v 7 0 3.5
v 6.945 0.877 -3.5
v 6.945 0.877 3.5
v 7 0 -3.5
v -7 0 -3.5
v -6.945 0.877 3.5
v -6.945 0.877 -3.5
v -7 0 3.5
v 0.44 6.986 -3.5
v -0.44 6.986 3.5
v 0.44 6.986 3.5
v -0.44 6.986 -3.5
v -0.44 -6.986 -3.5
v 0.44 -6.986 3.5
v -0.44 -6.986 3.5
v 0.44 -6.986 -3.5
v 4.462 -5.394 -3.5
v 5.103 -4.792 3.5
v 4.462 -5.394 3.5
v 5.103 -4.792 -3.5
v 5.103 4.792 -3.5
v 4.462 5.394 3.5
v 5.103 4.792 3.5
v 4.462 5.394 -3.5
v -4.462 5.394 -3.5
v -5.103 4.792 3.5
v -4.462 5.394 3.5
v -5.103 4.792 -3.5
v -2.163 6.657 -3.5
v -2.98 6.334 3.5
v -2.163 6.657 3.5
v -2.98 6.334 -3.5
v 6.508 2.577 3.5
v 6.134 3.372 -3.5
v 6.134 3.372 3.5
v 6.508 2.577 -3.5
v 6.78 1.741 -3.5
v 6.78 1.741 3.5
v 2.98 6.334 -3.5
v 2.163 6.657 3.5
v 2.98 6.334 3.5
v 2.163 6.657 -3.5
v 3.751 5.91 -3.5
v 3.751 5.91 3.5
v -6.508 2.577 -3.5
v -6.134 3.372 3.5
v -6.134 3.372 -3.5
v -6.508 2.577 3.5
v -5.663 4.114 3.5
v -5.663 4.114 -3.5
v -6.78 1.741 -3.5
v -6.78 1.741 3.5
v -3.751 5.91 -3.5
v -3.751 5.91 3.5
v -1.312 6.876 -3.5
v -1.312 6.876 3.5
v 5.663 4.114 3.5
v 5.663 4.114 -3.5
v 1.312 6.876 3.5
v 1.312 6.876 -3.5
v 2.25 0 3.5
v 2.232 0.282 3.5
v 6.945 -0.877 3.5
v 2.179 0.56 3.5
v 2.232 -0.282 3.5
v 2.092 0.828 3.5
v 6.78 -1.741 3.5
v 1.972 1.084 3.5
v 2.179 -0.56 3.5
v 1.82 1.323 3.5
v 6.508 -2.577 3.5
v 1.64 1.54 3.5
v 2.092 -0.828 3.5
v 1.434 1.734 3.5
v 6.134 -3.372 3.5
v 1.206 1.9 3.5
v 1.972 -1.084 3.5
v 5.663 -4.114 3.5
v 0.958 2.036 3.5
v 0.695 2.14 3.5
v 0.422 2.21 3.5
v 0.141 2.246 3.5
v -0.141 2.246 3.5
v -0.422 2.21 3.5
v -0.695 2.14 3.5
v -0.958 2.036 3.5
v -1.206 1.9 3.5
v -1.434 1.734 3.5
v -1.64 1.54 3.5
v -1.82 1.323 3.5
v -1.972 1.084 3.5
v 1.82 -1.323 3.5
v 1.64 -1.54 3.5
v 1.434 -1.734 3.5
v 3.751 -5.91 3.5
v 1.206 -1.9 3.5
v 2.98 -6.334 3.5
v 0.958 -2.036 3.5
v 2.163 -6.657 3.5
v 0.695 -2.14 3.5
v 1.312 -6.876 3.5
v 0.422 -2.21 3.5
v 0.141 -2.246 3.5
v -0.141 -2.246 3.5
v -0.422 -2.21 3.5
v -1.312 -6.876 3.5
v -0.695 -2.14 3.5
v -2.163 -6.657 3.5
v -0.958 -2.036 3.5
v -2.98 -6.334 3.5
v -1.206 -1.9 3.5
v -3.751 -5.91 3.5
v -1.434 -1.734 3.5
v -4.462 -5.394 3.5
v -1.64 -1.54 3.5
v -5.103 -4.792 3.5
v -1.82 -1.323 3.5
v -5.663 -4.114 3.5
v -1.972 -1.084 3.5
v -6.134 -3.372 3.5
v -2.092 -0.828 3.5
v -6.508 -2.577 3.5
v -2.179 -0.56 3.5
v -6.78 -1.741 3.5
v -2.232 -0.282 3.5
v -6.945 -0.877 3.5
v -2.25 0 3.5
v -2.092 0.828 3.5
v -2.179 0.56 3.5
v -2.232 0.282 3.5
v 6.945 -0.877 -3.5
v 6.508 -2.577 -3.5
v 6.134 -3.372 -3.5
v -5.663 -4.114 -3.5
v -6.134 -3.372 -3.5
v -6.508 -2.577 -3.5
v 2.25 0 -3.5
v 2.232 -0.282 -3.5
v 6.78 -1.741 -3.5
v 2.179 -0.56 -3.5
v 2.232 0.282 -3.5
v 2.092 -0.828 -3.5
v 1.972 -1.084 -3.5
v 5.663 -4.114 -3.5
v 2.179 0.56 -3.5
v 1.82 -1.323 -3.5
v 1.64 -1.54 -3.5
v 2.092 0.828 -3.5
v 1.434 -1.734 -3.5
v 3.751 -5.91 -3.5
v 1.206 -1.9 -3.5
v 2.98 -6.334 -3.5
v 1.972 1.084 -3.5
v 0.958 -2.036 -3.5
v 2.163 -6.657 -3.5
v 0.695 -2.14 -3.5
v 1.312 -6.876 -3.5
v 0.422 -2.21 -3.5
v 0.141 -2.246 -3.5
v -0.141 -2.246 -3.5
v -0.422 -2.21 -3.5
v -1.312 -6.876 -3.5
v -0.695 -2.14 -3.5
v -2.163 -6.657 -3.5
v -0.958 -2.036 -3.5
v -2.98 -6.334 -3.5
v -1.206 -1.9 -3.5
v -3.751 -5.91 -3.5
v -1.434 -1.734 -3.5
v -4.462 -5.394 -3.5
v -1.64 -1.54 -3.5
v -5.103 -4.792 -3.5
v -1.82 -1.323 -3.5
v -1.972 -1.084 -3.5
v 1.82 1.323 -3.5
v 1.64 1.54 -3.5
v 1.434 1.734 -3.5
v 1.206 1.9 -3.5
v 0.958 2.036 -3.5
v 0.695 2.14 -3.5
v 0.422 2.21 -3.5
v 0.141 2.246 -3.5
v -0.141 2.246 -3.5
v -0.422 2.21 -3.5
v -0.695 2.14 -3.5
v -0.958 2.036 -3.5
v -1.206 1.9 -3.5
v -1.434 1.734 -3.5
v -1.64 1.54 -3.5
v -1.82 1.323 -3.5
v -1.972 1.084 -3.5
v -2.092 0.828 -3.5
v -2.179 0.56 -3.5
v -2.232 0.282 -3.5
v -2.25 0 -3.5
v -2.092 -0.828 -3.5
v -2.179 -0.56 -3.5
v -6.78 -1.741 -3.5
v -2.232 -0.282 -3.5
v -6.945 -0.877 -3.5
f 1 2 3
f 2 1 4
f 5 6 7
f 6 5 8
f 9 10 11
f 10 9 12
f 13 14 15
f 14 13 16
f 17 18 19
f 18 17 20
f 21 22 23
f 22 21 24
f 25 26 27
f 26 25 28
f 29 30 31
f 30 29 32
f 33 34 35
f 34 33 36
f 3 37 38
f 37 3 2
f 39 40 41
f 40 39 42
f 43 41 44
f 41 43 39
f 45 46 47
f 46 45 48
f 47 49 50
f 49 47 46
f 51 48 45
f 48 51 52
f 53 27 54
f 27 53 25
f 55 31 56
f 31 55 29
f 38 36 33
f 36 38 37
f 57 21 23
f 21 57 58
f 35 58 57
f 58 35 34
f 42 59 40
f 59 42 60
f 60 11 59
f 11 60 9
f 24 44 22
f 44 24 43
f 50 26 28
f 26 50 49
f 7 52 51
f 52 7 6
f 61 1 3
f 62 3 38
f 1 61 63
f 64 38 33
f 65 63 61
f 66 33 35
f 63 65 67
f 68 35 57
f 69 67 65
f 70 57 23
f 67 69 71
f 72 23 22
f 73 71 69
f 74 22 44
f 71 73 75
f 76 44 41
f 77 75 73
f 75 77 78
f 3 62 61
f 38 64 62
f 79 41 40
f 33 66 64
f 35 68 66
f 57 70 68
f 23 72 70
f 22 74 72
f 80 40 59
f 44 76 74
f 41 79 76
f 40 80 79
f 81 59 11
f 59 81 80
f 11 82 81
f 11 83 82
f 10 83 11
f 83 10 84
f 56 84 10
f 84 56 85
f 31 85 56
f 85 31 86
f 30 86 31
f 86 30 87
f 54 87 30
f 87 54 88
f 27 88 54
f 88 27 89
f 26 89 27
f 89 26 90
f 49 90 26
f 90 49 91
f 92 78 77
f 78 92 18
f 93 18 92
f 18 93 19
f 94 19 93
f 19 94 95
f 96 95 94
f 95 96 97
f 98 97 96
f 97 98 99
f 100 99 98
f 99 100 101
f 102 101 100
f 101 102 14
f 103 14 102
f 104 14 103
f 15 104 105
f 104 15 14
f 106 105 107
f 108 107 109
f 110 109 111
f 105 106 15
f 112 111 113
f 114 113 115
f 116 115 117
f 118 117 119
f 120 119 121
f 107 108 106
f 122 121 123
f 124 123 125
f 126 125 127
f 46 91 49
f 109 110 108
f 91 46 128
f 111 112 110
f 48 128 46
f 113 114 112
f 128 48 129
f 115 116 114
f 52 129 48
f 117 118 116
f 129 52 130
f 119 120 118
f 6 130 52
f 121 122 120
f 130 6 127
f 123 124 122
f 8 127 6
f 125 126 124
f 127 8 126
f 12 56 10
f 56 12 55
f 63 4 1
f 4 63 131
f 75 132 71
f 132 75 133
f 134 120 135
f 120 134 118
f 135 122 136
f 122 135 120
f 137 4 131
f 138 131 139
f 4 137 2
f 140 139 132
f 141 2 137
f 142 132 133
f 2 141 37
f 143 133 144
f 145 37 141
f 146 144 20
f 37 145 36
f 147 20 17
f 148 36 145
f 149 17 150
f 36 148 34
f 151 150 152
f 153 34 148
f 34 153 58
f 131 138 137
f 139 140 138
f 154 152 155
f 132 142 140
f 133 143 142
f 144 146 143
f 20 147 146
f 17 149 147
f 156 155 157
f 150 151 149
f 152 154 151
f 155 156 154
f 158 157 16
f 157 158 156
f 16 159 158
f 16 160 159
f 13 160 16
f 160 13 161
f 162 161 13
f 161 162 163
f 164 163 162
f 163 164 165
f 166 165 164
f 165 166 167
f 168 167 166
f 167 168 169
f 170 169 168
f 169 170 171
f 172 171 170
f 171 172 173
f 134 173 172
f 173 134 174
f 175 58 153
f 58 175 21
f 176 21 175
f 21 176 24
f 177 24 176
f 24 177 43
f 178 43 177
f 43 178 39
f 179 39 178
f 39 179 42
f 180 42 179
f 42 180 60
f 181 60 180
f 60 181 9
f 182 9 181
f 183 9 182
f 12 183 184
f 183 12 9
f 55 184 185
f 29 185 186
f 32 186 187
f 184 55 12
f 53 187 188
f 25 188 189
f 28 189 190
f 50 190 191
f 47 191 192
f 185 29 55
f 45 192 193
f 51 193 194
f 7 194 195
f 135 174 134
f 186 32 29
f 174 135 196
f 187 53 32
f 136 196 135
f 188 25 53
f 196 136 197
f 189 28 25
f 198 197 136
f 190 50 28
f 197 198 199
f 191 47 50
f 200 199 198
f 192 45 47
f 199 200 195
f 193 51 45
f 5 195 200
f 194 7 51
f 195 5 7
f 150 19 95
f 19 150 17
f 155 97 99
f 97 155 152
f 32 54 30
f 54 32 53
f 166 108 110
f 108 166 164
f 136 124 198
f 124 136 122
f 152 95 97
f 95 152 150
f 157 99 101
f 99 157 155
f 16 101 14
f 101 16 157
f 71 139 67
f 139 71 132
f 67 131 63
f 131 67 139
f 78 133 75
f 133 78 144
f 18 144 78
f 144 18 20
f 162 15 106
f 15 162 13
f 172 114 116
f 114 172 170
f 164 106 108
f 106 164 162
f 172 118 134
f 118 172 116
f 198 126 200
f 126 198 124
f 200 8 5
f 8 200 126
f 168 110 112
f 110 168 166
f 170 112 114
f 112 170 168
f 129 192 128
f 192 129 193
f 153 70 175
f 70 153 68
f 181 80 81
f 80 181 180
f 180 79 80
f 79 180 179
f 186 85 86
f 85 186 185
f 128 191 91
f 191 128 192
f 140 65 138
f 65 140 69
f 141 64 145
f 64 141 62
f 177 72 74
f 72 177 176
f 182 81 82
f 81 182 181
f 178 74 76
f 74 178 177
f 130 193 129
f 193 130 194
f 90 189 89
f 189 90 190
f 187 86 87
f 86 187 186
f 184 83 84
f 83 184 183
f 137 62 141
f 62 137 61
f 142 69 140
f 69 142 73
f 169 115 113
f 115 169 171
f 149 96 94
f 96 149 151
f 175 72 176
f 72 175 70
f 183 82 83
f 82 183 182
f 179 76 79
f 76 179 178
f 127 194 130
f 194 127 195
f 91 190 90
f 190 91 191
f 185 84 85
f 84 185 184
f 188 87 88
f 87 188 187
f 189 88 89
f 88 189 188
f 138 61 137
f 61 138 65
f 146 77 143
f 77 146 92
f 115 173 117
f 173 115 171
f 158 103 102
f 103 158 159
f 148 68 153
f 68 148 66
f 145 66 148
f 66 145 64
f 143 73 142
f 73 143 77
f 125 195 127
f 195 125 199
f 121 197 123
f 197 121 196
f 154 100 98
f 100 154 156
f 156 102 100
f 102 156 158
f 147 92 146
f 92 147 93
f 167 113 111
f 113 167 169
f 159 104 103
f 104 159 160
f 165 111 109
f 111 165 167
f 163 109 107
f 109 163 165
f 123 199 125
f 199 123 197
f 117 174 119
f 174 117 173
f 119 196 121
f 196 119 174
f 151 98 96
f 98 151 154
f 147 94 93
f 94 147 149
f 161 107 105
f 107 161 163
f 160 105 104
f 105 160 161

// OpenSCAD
$fn = 50;


difference() {
	union() {
		translate(v = [0, 0, -3.5000000000]) {
			cylinder(h = 7, r = 7.0000000000);
		}
	}
	union() {
		translate(v = [0, 0, -100.0000000000]) {
			cylinder(h = 200, r = 2.2500000000);
		}
	}
}
